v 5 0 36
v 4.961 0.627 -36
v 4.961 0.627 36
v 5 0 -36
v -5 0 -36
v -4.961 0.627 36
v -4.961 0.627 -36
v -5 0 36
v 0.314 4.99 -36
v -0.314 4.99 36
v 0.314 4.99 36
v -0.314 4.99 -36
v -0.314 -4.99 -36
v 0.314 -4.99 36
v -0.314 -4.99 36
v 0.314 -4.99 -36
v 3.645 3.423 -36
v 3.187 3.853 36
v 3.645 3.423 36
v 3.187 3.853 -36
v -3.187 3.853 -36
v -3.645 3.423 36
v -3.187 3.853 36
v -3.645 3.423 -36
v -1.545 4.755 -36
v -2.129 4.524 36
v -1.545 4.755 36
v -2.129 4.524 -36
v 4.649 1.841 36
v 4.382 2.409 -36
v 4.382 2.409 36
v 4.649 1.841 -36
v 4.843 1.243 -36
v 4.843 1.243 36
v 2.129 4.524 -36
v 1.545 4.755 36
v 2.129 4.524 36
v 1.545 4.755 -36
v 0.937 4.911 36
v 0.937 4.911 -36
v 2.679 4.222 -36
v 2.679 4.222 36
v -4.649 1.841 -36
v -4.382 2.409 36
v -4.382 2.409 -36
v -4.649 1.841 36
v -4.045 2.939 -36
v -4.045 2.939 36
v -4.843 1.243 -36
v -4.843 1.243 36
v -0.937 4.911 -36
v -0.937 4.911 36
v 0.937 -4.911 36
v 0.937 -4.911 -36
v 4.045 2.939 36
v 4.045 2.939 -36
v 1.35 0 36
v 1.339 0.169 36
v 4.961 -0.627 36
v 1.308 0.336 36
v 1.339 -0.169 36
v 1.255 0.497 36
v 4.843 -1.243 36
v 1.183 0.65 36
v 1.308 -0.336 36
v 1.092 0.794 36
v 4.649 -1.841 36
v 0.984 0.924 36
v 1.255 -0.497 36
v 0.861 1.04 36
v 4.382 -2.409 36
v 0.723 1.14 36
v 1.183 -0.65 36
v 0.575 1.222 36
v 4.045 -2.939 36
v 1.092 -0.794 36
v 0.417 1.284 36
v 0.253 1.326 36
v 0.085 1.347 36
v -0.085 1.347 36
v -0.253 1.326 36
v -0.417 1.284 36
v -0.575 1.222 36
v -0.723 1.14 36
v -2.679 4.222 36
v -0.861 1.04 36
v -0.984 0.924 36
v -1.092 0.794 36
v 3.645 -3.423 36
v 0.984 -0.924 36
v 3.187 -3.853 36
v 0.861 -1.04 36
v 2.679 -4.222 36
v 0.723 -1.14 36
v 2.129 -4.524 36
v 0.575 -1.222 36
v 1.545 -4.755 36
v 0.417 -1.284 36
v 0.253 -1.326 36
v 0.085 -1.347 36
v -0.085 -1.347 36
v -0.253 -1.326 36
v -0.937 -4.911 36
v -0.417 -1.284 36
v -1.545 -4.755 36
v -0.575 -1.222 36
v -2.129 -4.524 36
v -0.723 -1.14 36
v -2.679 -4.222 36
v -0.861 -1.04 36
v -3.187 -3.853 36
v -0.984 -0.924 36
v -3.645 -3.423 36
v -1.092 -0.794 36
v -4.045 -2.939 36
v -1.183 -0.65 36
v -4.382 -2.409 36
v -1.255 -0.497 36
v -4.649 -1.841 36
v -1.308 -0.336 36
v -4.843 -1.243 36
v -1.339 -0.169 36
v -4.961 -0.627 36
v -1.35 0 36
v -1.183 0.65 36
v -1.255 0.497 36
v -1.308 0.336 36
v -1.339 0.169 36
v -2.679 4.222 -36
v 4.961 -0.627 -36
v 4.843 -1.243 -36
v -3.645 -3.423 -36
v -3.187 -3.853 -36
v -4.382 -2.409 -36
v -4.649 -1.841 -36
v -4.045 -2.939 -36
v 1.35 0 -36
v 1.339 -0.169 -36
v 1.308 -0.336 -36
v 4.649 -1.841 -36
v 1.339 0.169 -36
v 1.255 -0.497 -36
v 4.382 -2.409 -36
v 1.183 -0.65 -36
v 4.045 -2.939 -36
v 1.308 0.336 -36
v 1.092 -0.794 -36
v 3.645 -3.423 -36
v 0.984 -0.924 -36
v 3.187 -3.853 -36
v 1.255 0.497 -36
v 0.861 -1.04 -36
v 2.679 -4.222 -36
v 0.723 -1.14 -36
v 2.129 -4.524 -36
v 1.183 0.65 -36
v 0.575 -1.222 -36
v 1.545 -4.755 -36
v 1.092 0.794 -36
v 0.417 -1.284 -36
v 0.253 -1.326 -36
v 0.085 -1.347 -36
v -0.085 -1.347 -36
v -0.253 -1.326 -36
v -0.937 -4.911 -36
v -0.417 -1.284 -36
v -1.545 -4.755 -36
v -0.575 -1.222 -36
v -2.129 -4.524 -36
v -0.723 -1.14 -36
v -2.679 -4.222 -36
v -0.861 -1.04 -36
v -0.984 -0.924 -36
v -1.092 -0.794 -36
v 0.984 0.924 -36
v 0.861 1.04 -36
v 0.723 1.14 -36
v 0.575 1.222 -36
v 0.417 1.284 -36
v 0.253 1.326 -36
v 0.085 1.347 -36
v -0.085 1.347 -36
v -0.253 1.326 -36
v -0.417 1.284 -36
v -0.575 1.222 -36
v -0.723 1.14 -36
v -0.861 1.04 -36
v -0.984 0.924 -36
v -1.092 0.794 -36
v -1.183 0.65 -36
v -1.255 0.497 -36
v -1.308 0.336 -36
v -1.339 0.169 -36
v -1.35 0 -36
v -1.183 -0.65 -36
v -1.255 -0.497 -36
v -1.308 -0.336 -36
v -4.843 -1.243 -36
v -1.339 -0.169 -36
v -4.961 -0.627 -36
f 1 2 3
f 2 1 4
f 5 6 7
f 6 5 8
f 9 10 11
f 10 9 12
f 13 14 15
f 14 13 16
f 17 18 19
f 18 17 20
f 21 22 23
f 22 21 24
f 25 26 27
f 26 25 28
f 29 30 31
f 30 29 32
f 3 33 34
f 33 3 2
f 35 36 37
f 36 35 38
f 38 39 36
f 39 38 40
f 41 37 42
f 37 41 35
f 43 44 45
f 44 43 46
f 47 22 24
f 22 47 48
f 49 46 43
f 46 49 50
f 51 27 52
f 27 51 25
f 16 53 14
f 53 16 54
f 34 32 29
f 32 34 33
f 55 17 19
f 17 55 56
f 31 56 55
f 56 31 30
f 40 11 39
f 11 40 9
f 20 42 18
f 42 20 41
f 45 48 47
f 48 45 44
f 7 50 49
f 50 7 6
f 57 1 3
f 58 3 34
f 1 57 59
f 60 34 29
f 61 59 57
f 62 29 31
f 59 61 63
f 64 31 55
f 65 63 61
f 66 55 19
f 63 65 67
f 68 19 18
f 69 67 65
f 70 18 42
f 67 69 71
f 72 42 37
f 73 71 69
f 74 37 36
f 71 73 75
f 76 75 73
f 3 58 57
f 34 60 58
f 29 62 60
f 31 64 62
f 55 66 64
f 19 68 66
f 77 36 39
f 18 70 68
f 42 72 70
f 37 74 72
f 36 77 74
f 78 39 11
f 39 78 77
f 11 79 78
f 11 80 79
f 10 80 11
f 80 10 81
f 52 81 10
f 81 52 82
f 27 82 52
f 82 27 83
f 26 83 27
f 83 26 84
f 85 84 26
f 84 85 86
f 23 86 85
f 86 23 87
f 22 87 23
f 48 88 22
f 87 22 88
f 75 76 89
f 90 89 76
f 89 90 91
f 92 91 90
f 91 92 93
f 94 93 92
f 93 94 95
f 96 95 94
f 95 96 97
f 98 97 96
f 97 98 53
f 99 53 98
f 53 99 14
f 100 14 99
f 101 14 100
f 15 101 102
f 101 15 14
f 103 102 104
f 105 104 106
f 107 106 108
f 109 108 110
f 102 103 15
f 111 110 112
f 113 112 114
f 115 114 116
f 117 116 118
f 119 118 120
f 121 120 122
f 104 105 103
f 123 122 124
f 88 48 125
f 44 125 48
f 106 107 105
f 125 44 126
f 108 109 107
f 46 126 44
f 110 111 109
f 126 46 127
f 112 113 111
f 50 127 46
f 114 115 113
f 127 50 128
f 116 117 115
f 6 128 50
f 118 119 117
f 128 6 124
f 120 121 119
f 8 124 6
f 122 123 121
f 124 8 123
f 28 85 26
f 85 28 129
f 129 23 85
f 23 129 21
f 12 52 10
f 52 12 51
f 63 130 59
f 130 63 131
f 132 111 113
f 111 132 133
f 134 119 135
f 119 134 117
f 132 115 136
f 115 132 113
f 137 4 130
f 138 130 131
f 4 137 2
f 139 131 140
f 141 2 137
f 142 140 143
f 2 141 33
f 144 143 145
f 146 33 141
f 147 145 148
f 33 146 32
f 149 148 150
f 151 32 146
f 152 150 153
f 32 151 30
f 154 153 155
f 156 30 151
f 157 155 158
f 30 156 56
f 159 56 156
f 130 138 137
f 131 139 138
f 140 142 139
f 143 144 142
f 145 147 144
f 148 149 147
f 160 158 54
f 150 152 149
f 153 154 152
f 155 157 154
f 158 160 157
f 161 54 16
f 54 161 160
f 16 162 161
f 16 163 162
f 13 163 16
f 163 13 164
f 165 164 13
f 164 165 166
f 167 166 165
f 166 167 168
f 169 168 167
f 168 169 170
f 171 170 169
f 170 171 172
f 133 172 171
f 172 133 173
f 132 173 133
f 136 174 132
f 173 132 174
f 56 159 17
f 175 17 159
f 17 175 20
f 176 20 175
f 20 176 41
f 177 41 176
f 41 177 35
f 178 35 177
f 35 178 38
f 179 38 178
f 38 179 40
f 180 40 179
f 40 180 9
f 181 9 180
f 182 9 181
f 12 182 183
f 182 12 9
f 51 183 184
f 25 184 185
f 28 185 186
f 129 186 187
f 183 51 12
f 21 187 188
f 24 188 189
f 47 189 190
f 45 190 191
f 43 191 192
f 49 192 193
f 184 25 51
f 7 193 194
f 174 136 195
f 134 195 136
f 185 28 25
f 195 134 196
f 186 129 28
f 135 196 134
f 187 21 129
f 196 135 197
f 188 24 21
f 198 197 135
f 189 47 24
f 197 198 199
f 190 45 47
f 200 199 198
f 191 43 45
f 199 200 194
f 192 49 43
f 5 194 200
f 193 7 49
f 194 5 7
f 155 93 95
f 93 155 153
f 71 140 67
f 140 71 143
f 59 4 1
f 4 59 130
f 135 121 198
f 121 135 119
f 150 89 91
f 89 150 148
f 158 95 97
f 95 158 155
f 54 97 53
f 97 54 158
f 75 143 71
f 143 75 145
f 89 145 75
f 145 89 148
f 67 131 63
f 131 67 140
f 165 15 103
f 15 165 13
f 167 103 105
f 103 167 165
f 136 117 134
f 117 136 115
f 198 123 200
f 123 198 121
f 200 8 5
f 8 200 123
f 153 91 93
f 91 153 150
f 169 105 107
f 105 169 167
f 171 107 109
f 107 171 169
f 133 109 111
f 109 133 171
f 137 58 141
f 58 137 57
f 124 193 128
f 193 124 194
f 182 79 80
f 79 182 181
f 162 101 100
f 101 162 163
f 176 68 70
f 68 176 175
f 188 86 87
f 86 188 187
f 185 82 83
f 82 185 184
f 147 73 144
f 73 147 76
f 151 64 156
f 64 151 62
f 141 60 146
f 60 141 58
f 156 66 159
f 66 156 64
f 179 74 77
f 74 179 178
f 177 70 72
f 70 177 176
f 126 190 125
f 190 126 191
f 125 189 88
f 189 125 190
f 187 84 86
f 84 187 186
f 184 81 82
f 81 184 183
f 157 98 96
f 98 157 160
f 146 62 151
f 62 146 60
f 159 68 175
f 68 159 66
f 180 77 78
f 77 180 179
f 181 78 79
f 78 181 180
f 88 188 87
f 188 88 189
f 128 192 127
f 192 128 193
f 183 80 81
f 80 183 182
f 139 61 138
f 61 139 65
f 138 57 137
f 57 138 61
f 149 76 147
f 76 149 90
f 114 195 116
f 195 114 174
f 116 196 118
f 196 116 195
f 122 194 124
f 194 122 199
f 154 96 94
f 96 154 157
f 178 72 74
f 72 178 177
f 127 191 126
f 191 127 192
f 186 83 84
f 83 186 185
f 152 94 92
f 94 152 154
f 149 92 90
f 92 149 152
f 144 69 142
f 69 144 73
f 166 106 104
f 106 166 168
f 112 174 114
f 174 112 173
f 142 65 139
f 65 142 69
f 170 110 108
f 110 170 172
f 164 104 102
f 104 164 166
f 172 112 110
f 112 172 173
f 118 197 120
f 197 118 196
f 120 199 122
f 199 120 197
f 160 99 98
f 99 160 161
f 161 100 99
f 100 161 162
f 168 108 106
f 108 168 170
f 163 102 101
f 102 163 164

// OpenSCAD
$fn = 50;


difference() {
	union() {
		translate(v = [0, 0, -36.0000000000]) {
			cylinder(h = 72, r = 5.0000000000);
		}
	}
	union() {
		translate(v = [0, 0, -100.0000000000]) {
			cylinder(h = 200, r = 1.3500000000);
		}
	}
}
